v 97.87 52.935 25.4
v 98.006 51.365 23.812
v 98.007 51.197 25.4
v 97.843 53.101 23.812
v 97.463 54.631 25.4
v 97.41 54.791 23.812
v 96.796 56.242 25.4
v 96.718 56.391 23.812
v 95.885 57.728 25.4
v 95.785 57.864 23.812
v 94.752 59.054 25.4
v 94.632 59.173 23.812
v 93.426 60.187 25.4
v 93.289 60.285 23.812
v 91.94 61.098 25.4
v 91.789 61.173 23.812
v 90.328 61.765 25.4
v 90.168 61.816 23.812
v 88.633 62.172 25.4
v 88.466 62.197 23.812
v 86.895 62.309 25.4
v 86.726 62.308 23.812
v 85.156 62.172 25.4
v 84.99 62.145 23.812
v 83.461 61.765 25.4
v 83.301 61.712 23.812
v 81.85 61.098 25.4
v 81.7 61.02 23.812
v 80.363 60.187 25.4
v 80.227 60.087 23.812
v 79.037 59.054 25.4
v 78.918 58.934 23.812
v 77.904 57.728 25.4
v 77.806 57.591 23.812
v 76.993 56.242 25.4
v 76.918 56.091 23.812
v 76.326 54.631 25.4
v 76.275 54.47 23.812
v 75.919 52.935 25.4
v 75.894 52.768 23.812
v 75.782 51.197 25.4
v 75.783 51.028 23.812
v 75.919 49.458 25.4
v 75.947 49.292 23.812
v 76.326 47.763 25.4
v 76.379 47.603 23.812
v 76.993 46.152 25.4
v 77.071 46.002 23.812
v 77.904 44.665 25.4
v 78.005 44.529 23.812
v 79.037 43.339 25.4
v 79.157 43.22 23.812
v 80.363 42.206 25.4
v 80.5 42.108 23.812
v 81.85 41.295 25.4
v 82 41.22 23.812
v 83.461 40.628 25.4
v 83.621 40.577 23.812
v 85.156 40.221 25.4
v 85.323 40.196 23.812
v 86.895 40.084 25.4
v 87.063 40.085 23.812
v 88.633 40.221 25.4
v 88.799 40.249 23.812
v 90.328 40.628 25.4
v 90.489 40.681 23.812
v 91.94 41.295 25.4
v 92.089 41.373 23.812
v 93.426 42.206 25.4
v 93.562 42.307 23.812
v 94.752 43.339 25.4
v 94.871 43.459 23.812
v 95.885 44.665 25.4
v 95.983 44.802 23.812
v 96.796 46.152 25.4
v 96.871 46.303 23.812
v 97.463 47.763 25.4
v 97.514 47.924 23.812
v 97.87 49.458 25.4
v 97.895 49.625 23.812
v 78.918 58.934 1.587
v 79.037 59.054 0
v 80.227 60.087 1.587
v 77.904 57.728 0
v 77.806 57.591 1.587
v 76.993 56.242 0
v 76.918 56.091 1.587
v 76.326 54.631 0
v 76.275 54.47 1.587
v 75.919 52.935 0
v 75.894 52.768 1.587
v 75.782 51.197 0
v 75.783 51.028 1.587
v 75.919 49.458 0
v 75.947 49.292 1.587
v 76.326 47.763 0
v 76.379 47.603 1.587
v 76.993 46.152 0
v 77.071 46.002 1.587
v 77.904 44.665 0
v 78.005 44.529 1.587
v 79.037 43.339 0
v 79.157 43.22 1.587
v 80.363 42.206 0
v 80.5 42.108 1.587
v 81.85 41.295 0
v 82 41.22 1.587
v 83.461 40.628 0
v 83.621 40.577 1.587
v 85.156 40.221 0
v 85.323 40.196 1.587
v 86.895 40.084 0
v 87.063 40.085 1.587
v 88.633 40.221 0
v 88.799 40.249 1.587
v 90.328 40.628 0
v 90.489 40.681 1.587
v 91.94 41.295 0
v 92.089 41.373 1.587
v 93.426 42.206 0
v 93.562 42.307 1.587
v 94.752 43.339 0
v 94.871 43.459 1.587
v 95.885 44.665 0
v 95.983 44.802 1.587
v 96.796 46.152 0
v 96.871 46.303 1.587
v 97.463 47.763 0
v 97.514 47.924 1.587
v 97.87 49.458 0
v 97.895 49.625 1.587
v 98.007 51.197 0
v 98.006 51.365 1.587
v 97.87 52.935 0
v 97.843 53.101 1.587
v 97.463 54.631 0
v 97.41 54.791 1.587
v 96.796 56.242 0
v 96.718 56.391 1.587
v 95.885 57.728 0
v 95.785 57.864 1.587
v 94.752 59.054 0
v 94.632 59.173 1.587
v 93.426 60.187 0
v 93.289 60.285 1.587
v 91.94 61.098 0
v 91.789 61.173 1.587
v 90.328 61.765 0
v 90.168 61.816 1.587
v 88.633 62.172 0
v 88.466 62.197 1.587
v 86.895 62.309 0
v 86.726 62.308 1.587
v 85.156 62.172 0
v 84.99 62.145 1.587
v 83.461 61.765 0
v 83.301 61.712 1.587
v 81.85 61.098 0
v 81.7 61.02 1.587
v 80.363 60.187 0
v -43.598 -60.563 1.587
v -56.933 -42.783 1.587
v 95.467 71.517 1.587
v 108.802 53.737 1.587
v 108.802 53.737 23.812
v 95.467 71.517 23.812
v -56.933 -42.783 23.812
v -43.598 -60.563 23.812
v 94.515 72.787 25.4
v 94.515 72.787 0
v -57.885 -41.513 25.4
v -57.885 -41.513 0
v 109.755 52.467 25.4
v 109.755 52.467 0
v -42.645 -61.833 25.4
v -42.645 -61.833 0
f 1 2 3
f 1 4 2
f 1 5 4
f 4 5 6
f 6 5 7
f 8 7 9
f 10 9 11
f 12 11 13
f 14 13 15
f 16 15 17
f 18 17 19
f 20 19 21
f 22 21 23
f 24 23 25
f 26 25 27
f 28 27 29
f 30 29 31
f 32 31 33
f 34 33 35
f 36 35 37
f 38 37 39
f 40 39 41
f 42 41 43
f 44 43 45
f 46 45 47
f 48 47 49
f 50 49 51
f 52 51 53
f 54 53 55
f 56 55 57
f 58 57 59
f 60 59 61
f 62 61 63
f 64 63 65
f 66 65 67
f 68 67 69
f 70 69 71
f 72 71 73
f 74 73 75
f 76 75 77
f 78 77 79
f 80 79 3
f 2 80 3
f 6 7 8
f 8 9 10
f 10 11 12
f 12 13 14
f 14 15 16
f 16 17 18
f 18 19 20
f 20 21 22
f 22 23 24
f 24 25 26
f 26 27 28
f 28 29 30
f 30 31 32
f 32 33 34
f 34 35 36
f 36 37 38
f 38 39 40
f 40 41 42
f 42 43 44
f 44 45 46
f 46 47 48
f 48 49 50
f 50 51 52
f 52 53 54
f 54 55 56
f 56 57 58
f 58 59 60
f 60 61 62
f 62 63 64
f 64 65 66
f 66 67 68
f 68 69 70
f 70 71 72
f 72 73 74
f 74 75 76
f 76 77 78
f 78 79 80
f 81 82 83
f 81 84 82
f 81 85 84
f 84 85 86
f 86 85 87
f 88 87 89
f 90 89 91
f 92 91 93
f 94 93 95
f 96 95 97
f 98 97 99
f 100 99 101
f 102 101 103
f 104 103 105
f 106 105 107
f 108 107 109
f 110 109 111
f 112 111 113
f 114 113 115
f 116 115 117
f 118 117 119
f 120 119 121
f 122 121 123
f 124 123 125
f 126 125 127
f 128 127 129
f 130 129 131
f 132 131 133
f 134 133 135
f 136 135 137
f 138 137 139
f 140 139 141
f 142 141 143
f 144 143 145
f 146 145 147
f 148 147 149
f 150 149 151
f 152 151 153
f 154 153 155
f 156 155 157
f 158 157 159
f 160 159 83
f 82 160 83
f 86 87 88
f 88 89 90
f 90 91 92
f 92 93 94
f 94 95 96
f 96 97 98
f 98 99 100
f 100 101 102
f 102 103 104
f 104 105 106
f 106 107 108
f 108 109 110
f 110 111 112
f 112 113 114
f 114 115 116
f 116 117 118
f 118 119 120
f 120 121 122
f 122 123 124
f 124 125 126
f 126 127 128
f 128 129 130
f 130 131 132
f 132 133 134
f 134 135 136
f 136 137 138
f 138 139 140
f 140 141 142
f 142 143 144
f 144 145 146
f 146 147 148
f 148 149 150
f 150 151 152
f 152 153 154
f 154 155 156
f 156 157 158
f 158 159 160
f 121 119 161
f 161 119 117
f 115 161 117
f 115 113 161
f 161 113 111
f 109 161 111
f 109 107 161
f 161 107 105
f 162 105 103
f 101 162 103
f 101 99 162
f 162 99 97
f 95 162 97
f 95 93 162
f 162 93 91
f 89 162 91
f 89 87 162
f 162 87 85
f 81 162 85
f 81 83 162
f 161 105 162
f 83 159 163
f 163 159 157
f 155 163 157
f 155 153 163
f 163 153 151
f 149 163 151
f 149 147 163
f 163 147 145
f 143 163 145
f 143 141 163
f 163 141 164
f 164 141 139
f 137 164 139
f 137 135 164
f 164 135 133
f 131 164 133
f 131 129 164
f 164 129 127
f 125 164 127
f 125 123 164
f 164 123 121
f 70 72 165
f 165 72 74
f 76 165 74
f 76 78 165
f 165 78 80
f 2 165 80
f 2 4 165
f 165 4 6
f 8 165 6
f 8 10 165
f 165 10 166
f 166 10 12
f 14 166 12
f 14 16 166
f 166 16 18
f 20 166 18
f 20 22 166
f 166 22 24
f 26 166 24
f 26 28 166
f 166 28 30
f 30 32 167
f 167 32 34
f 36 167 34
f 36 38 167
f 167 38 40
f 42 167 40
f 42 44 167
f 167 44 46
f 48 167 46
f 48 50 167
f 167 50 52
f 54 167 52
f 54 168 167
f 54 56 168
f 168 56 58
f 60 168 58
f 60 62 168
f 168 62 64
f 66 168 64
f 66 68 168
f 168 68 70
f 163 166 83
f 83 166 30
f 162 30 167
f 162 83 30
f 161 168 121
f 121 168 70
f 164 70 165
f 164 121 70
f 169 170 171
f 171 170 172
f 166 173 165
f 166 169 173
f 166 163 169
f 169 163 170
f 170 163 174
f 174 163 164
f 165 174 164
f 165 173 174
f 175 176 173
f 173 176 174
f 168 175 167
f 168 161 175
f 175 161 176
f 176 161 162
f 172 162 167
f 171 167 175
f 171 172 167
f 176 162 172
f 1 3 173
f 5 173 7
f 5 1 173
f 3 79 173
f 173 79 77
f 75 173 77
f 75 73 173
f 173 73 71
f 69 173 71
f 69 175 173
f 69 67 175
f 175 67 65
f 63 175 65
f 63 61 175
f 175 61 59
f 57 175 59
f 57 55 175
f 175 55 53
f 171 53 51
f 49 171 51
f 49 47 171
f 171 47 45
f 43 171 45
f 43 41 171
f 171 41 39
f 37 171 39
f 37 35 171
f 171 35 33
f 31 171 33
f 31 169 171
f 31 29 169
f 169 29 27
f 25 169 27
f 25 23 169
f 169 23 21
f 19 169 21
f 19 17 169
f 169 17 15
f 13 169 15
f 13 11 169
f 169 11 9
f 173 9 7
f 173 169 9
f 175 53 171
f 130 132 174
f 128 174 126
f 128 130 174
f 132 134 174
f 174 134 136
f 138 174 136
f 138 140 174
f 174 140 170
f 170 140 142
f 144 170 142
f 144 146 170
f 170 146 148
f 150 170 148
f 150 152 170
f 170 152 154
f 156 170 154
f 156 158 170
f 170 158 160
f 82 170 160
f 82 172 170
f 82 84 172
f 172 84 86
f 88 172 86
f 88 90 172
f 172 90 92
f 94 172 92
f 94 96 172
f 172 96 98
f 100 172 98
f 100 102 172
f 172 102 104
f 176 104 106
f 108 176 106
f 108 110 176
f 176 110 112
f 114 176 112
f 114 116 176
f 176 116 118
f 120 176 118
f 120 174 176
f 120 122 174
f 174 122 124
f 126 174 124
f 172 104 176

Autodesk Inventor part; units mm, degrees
ref_plane "YZ Plane" through (0, 0, 0) normal (1, 0, 0) x (0, 1, 0)
ref_plane "XZ Plane" through (0, 0, 0) normal (0, 1, 0) x (-1, 0, 0)
ref_plane "XY Plane" through (0, 0, 0) normal (0, 0, 1) x (1, 0, 0)
sketch "Sketch1" plane through (0, 0, 0) normal (0, 0, 1) x (1, 0, 0)
  line L0 (-42.6455, -61.8334) -> (-57.8855, -41.5134)
  line L1 (-57.8855, -41.5134) -> (94.5145, 72.7866)
  line L2 (94.5145, 72.7866) -> (109.7545, 52.4666)
  line L3 (109.7545, 52.4666) -> (-42.6455, -61.8334)
  point P0 (0, 0)
  dimension "d0" = 25.4
  dimension "d1" = 190.5
extrude "Extrusion1" add sketch "Sketch1" along normal blind 25.4
shell "Shell1" thickness 1.5875 removed faces 2 at (-47.7255, -55.0601, 8.4667) at (99.5945, 66.0133, 16.9333)
sketch "Sketch2" plane through (0, 0, 25.4) normal (0, 0, 1) x (1, 0, 0)
  line L0 (109.7545, 52.4666) -> (-42.6455, -61.8334) projected
  line L1 (94.5145, 72.7866) -> (109.7545, 52.4666) projected
  circle A0 centre (86.8945, 51.1966) radius 11.1125
  point P0 (0, 0)
  dimension "d5" = 22.225
  dimension "d6" = 12.7
  dimension "d7" = 19.05
extrude "Extrusion2" cut sketch "Sketch2" against normal through all
properties part number "Shovel_RollerMount" material "Aluminum-6061"
